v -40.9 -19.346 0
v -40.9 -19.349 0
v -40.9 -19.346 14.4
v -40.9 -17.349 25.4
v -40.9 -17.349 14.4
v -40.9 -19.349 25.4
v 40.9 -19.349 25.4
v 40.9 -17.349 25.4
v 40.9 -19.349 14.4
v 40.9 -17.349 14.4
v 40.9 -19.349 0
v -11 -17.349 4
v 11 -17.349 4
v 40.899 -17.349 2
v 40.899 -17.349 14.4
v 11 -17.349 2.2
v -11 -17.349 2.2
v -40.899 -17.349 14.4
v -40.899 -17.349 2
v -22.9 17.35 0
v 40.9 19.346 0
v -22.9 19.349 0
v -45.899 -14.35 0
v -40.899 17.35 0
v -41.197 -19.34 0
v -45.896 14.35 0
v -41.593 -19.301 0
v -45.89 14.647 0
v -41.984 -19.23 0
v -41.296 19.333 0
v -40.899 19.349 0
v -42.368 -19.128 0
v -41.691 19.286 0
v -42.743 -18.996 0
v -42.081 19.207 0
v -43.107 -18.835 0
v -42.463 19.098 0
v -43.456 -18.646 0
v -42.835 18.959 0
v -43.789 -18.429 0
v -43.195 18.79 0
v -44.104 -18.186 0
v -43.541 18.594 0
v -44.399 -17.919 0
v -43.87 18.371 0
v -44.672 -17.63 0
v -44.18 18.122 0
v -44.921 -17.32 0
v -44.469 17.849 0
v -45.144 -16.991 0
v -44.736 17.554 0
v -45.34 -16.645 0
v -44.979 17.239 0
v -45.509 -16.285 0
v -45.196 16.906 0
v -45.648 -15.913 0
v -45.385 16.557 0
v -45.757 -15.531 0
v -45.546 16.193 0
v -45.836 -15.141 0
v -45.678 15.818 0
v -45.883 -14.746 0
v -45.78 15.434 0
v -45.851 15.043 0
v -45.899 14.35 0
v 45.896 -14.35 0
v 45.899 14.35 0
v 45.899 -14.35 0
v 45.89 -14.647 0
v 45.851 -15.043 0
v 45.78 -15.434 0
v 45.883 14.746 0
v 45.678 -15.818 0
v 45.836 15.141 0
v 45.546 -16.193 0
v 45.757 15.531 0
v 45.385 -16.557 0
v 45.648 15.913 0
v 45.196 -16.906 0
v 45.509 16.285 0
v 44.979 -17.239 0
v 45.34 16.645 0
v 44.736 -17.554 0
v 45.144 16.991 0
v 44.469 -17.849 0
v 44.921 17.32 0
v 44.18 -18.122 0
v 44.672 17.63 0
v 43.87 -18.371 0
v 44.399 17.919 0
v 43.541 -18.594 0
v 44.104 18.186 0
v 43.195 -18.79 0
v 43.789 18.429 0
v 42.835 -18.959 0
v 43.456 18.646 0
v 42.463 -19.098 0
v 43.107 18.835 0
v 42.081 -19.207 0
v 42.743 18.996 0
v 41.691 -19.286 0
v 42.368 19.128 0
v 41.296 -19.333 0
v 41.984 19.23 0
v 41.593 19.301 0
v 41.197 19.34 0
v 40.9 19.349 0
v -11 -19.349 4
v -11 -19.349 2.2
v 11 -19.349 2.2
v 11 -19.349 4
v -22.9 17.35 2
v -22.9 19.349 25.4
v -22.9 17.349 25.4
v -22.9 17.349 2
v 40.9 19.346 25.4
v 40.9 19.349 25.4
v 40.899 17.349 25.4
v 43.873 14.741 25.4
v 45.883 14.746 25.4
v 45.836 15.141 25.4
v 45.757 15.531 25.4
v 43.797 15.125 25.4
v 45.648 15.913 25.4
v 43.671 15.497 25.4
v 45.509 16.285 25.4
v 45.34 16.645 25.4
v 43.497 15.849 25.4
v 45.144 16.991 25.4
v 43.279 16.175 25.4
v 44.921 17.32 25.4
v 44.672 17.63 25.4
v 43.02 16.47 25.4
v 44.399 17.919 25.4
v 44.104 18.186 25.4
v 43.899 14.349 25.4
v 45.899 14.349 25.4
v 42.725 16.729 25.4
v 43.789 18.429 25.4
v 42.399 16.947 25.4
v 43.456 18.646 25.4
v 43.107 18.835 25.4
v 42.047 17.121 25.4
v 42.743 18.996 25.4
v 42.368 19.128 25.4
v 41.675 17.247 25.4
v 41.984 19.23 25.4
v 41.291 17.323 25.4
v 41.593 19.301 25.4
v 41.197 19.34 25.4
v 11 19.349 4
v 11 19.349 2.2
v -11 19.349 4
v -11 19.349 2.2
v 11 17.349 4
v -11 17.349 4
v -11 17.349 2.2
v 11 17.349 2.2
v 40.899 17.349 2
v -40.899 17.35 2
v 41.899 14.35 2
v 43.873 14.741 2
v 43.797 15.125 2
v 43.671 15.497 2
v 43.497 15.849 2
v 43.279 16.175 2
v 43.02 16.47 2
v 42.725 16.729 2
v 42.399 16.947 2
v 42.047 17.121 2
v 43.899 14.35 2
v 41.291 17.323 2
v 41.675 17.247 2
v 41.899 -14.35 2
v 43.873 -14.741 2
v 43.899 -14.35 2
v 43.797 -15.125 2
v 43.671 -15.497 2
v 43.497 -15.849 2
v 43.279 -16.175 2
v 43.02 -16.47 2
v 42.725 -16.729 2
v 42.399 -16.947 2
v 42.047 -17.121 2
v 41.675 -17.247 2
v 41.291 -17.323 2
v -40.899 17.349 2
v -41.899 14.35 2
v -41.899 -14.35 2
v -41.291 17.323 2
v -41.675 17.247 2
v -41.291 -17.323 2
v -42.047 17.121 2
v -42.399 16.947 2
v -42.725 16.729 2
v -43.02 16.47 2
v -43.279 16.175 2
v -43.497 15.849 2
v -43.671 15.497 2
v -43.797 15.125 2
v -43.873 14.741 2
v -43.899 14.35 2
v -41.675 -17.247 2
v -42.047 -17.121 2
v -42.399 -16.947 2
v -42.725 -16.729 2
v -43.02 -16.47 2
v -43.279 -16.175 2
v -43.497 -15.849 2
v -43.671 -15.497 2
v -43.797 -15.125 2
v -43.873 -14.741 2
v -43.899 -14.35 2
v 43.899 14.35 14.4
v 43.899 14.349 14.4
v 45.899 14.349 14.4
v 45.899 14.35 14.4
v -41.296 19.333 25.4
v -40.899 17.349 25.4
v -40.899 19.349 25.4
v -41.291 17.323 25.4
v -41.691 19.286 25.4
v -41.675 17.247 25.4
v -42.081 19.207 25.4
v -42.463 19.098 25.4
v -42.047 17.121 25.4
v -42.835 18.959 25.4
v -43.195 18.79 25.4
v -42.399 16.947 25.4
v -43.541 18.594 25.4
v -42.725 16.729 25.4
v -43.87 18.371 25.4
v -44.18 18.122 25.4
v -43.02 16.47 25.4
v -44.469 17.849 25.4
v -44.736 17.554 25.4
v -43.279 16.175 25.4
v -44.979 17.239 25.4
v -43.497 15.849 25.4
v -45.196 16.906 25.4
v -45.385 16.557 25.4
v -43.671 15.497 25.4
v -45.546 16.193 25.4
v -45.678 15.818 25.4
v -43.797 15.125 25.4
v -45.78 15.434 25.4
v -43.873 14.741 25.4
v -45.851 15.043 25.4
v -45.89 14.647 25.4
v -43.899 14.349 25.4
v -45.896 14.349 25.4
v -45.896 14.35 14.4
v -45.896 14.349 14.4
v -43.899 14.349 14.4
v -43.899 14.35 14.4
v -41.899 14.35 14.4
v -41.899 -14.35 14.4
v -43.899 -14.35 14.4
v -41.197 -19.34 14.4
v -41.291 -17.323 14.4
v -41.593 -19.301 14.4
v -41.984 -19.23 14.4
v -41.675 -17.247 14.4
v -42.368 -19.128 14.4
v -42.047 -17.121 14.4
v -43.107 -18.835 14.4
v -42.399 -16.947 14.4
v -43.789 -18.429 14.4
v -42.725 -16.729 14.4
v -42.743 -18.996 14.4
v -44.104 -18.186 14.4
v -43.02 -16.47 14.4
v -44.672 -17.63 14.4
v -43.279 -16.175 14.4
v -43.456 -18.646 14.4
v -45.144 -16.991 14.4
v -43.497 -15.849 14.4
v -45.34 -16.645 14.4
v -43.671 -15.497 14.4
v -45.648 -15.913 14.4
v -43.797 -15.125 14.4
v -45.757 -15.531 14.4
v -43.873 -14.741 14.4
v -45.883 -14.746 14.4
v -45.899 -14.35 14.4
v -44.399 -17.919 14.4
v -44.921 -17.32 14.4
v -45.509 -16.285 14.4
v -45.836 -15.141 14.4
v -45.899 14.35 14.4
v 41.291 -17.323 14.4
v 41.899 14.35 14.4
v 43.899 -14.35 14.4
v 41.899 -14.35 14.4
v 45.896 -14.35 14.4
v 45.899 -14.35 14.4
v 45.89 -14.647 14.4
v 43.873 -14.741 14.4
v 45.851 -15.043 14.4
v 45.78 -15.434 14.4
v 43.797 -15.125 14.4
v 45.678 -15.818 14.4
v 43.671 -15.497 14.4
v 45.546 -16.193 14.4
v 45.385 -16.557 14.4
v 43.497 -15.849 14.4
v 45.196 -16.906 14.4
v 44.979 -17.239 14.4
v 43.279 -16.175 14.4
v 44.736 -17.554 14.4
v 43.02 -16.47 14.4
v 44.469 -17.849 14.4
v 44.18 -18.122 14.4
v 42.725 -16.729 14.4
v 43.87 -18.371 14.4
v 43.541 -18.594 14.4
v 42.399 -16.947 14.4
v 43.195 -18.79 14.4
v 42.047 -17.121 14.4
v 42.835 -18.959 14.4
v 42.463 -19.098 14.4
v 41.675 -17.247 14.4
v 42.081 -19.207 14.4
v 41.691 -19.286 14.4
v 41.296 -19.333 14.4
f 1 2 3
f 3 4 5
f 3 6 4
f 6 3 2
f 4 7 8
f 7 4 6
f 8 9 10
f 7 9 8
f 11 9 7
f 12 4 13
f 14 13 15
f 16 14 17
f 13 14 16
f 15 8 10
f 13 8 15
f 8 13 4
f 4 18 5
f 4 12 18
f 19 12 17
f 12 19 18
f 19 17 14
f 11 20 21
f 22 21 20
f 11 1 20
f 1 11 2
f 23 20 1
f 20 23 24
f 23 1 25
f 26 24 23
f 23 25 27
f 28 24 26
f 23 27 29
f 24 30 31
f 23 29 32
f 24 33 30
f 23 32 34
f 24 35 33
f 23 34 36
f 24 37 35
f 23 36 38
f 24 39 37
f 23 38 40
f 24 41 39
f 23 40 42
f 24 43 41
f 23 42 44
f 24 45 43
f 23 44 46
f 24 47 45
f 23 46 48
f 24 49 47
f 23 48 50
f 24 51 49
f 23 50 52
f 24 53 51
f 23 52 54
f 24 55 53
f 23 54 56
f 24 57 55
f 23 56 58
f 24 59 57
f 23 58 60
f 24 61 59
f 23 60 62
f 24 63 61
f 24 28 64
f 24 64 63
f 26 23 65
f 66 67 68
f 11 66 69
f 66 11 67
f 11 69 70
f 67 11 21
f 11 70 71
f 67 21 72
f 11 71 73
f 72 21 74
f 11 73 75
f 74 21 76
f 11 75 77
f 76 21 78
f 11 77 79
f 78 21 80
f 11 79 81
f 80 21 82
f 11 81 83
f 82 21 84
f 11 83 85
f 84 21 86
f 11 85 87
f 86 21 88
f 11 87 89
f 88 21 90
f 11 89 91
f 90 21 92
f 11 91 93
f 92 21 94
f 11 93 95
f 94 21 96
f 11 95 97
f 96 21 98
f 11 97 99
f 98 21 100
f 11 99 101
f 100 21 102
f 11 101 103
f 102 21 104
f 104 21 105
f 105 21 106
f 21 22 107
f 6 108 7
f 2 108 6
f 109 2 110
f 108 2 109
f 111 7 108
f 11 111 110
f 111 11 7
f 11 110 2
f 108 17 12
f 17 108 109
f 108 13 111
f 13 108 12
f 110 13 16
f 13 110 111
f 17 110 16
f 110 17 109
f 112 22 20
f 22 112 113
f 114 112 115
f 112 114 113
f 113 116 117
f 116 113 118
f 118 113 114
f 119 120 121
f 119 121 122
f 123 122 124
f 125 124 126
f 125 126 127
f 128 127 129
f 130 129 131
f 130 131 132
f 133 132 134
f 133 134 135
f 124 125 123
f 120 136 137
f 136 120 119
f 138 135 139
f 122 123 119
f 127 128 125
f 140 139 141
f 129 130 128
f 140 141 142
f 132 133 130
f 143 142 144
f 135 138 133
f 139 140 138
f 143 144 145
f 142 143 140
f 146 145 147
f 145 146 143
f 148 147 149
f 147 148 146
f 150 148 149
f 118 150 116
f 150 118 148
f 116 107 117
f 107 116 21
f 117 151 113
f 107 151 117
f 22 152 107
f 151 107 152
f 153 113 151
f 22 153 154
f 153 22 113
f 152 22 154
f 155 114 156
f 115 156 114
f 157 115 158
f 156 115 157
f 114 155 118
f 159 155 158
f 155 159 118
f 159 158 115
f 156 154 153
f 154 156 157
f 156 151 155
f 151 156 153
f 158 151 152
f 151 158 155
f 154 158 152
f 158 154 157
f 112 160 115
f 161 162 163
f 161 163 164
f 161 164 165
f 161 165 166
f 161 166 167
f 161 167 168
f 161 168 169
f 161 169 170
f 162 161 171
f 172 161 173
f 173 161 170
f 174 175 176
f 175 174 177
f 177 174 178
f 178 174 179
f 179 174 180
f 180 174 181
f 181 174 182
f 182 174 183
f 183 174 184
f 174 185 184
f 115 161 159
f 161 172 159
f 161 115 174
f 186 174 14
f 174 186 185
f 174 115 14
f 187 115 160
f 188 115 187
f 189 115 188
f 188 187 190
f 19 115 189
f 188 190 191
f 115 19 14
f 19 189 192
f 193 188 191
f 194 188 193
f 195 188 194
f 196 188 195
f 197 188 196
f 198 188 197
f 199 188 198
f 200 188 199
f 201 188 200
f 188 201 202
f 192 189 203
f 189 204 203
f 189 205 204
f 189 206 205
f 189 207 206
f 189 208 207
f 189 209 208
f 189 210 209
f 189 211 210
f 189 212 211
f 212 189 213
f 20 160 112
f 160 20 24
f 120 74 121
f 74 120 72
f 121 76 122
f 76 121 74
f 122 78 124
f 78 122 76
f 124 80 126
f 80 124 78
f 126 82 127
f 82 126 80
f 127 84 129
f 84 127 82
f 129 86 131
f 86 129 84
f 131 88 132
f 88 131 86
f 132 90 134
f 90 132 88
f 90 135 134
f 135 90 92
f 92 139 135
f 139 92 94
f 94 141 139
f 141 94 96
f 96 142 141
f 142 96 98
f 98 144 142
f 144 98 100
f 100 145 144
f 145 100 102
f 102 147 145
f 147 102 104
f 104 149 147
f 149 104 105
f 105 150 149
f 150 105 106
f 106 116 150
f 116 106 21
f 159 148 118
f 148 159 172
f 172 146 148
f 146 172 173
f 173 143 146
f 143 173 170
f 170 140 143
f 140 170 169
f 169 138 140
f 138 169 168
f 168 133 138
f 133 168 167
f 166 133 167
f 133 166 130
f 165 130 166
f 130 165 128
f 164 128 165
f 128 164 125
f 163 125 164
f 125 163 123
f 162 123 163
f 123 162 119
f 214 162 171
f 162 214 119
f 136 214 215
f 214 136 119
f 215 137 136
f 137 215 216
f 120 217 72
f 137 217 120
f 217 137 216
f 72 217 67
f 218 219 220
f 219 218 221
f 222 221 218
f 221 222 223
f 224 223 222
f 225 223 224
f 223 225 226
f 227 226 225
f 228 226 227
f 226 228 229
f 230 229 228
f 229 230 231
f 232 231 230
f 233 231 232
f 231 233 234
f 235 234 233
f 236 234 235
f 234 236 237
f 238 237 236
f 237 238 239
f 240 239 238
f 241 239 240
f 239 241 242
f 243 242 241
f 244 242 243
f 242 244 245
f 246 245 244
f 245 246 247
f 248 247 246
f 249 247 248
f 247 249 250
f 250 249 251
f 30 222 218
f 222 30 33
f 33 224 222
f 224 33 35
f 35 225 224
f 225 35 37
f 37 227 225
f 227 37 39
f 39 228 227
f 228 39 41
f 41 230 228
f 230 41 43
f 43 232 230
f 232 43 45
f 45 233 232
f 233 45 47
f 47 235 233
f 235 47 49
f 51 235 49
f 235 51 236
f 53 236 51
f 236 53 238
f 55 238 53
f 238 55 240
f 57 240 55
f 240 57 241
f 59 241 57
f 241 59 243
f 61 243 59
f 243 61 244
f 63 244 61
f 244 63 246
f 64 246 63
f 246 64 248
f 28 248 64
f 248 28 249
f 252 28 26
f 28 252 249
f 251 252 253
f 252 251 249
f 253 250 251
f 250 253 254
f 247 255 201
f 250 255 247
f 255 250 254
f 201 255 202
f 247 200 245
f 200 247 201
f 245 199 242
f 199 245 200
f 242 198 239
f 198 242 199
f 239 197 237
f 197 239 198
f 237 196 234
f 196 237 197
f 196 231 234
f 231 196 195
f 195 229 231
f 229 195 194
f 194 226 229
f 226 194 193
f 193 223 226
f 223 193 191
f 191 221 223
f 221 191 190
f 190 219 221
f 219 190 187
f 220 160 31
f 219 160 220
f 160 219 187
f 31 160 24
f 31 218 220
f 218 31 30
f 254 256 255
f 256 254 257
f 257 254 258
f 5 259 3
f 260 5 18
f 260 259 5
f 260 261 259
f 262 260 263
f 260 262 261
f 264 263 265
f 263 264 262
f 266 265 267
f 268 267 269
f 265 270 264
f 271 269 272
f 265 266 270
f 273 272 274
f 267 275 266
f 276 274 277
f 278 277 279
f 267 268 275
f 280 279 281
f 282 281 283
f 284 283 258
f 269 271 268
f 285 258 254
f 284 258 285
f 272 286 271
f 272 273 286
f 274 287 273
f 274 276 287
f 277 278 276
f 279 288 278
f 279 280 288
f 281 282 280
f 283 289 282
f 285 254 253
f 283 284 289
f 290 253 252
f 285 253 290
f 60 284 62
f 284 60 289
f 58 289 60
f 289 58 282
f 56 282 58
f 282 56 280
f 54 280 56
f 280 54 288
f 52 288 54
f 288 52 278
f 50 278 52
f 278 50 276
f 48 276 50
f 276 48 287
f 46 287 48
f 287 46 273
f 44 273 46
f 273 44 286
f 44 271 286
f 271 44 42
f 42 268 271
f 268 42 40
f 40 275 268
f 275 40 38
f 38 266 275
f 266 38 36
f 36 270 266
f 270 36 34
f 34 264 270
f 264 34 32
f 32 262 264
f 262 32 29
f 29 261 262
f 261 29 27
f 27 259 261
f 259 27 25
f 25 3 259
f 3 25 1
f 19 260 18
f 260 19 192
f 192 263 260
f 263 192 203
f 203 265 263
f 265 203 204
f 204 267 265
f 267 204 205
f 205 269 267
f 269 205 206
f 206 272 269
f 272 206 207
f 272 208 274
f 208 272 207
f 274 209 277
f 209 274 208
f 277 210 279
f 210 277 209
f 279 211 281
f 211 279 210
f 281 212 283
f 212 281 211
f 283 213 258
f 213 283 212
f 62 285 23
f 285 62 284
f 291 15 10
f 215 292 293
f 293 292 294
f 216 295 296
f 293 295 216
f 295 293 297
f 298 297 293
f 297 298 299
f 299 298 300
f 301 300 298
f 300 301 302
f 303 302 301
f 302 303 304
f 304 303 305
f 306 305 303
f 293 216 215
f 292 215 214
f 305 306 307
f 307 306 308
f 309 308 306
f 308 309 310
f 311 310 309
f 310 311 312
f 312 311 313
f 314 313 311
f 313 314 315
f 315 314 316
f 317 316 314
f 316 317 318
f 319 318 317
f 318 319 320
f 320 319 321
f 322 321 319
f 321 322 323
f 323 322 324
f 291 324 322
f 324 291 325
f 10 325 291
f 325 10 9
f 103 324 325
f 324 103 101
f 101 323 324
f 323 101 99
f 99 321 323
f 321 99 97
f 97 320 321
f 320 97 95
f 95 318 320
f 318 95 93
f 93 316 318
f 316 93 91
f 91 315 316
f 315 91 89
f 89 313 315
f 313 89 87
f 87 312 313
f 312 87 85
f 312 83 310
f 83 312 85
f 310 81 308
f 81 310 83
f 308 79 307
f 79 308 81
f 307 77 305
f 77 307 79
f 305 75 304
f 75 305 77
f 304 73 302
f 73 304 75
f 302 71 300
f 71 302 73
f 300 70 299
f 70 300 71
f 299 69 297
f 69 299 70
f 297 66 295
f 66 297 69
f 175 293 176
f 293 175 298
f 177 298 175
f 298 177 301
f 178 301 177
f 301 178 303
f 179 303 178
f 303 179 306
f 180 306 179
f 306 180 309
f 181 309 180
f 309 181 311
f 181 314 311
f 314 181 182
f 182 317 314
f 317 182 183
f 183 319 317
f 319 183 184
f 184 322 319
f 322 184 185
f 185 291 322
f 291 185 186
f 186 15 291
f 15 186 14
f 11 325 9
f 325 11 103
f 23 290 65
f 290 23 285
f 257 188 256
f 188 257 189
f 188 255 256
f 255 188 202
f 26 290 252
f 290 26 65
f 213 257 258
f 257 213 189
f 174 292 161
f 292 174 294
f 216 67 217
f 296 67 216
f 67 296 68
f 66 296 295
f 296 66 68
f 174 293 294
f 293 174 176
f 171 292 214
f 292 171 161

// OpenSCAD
$fa = 1;
$fs = 0.4;

// 考虑了0.2mm公差，x和y方向尺寸
width = 87.8;
height = 34.7; 
// 倒角直径
diameter = 6;

//底座打印厚度
thickness = 2;

//边缘厚度
edge_thick = 2;

//绑带厚度
tape_thick = 1.8;

//绑带宽度
tape_width = 22;

//电池厚度10mm，绑带厚度
battery_thick = 10.6+tape_thick;



//顶部高度
top_high = 11;

color("red")
linear_extrude(height = thickness){
    //做倒角
    minkowski(){
        square([width-diameter,height-diameter],center = true);
    circle(d = diameter);
}
}



// 四分之一圆环
module quater_ring(large_diameter, small_diameter){
intersection(){
difference(){
circle(d=large_diameter);
circle(d=small_diameter);
}
square(large_diameter);    
}
}

// 外边界
// 右上角
translate([width/2-diameter/2-0.001,height/2-diameter/2-0.001,0])
linear_extrude(height = battery_thick+thickness+top_high){
quater_ring(diameter+2*edge_thick,diameter);
}

// 左上角
translate([-width/2+diameter/2+0.001,height/2-diameter/2-0.001,0])
linear_extrude(height = battery_thick+thickness+top_high){
rotate([0,0,90])
quater_ring(diameter+2*edge_thick,diameter);
}

// 左下角
translate([-width/2+diameter/2+0.001,-height/2+diameter/2+0.001,0])
linear_extrude(height = battery_thick+thickness){
rotate([0,0,180])
quater_ring(diameter+2*edge_thick,diameter);
}


// 右下角
translate([width/2-diameter/2-0.001,-height/2+diameter/2+0.001,0])
linear_extrude(height = battery_thick+thickness){
rotate([0,0,270])
quater_ring(diameter+2*edge_thick,diameter);
}

// 左挡板，并托住电路板
translate([-width/2-edge_thick+0.001,-height/2+diameter/2,0])
cube([edge_thick+2,height-diameter,battery_thick+thickness]);

// 右挡板，并托住电路板
translate([width/2-2-0.001,-height/2+diameter/2,0])
cube([edge_thick+2,height-diameter,battery_thick+thickness]);

// 前挡板，绑带孔
difference(){
translate([-(width-diameter)/2,-height/2-edge_thick+0.001,0])
cube([width-diameter,edge_thick,battery_thick+thickness+top_high]);
translate([0,0,tape_thick/2+thickness+0.2])
cube([tape_width,50,tape_thick],center = true);
}
// 后挡板，留出电池线通道，绑带孔
difference(){
translate([-(width-diameter)/2+18,height/2-0.001,0])
cube([width-diameter-18,edge_thick,battery_thick+thickness+top_high]);
translate([0,0,tape_thick/2+thickness+0.2])
cube([tape_width,50,tape_thick],center = true);
}
